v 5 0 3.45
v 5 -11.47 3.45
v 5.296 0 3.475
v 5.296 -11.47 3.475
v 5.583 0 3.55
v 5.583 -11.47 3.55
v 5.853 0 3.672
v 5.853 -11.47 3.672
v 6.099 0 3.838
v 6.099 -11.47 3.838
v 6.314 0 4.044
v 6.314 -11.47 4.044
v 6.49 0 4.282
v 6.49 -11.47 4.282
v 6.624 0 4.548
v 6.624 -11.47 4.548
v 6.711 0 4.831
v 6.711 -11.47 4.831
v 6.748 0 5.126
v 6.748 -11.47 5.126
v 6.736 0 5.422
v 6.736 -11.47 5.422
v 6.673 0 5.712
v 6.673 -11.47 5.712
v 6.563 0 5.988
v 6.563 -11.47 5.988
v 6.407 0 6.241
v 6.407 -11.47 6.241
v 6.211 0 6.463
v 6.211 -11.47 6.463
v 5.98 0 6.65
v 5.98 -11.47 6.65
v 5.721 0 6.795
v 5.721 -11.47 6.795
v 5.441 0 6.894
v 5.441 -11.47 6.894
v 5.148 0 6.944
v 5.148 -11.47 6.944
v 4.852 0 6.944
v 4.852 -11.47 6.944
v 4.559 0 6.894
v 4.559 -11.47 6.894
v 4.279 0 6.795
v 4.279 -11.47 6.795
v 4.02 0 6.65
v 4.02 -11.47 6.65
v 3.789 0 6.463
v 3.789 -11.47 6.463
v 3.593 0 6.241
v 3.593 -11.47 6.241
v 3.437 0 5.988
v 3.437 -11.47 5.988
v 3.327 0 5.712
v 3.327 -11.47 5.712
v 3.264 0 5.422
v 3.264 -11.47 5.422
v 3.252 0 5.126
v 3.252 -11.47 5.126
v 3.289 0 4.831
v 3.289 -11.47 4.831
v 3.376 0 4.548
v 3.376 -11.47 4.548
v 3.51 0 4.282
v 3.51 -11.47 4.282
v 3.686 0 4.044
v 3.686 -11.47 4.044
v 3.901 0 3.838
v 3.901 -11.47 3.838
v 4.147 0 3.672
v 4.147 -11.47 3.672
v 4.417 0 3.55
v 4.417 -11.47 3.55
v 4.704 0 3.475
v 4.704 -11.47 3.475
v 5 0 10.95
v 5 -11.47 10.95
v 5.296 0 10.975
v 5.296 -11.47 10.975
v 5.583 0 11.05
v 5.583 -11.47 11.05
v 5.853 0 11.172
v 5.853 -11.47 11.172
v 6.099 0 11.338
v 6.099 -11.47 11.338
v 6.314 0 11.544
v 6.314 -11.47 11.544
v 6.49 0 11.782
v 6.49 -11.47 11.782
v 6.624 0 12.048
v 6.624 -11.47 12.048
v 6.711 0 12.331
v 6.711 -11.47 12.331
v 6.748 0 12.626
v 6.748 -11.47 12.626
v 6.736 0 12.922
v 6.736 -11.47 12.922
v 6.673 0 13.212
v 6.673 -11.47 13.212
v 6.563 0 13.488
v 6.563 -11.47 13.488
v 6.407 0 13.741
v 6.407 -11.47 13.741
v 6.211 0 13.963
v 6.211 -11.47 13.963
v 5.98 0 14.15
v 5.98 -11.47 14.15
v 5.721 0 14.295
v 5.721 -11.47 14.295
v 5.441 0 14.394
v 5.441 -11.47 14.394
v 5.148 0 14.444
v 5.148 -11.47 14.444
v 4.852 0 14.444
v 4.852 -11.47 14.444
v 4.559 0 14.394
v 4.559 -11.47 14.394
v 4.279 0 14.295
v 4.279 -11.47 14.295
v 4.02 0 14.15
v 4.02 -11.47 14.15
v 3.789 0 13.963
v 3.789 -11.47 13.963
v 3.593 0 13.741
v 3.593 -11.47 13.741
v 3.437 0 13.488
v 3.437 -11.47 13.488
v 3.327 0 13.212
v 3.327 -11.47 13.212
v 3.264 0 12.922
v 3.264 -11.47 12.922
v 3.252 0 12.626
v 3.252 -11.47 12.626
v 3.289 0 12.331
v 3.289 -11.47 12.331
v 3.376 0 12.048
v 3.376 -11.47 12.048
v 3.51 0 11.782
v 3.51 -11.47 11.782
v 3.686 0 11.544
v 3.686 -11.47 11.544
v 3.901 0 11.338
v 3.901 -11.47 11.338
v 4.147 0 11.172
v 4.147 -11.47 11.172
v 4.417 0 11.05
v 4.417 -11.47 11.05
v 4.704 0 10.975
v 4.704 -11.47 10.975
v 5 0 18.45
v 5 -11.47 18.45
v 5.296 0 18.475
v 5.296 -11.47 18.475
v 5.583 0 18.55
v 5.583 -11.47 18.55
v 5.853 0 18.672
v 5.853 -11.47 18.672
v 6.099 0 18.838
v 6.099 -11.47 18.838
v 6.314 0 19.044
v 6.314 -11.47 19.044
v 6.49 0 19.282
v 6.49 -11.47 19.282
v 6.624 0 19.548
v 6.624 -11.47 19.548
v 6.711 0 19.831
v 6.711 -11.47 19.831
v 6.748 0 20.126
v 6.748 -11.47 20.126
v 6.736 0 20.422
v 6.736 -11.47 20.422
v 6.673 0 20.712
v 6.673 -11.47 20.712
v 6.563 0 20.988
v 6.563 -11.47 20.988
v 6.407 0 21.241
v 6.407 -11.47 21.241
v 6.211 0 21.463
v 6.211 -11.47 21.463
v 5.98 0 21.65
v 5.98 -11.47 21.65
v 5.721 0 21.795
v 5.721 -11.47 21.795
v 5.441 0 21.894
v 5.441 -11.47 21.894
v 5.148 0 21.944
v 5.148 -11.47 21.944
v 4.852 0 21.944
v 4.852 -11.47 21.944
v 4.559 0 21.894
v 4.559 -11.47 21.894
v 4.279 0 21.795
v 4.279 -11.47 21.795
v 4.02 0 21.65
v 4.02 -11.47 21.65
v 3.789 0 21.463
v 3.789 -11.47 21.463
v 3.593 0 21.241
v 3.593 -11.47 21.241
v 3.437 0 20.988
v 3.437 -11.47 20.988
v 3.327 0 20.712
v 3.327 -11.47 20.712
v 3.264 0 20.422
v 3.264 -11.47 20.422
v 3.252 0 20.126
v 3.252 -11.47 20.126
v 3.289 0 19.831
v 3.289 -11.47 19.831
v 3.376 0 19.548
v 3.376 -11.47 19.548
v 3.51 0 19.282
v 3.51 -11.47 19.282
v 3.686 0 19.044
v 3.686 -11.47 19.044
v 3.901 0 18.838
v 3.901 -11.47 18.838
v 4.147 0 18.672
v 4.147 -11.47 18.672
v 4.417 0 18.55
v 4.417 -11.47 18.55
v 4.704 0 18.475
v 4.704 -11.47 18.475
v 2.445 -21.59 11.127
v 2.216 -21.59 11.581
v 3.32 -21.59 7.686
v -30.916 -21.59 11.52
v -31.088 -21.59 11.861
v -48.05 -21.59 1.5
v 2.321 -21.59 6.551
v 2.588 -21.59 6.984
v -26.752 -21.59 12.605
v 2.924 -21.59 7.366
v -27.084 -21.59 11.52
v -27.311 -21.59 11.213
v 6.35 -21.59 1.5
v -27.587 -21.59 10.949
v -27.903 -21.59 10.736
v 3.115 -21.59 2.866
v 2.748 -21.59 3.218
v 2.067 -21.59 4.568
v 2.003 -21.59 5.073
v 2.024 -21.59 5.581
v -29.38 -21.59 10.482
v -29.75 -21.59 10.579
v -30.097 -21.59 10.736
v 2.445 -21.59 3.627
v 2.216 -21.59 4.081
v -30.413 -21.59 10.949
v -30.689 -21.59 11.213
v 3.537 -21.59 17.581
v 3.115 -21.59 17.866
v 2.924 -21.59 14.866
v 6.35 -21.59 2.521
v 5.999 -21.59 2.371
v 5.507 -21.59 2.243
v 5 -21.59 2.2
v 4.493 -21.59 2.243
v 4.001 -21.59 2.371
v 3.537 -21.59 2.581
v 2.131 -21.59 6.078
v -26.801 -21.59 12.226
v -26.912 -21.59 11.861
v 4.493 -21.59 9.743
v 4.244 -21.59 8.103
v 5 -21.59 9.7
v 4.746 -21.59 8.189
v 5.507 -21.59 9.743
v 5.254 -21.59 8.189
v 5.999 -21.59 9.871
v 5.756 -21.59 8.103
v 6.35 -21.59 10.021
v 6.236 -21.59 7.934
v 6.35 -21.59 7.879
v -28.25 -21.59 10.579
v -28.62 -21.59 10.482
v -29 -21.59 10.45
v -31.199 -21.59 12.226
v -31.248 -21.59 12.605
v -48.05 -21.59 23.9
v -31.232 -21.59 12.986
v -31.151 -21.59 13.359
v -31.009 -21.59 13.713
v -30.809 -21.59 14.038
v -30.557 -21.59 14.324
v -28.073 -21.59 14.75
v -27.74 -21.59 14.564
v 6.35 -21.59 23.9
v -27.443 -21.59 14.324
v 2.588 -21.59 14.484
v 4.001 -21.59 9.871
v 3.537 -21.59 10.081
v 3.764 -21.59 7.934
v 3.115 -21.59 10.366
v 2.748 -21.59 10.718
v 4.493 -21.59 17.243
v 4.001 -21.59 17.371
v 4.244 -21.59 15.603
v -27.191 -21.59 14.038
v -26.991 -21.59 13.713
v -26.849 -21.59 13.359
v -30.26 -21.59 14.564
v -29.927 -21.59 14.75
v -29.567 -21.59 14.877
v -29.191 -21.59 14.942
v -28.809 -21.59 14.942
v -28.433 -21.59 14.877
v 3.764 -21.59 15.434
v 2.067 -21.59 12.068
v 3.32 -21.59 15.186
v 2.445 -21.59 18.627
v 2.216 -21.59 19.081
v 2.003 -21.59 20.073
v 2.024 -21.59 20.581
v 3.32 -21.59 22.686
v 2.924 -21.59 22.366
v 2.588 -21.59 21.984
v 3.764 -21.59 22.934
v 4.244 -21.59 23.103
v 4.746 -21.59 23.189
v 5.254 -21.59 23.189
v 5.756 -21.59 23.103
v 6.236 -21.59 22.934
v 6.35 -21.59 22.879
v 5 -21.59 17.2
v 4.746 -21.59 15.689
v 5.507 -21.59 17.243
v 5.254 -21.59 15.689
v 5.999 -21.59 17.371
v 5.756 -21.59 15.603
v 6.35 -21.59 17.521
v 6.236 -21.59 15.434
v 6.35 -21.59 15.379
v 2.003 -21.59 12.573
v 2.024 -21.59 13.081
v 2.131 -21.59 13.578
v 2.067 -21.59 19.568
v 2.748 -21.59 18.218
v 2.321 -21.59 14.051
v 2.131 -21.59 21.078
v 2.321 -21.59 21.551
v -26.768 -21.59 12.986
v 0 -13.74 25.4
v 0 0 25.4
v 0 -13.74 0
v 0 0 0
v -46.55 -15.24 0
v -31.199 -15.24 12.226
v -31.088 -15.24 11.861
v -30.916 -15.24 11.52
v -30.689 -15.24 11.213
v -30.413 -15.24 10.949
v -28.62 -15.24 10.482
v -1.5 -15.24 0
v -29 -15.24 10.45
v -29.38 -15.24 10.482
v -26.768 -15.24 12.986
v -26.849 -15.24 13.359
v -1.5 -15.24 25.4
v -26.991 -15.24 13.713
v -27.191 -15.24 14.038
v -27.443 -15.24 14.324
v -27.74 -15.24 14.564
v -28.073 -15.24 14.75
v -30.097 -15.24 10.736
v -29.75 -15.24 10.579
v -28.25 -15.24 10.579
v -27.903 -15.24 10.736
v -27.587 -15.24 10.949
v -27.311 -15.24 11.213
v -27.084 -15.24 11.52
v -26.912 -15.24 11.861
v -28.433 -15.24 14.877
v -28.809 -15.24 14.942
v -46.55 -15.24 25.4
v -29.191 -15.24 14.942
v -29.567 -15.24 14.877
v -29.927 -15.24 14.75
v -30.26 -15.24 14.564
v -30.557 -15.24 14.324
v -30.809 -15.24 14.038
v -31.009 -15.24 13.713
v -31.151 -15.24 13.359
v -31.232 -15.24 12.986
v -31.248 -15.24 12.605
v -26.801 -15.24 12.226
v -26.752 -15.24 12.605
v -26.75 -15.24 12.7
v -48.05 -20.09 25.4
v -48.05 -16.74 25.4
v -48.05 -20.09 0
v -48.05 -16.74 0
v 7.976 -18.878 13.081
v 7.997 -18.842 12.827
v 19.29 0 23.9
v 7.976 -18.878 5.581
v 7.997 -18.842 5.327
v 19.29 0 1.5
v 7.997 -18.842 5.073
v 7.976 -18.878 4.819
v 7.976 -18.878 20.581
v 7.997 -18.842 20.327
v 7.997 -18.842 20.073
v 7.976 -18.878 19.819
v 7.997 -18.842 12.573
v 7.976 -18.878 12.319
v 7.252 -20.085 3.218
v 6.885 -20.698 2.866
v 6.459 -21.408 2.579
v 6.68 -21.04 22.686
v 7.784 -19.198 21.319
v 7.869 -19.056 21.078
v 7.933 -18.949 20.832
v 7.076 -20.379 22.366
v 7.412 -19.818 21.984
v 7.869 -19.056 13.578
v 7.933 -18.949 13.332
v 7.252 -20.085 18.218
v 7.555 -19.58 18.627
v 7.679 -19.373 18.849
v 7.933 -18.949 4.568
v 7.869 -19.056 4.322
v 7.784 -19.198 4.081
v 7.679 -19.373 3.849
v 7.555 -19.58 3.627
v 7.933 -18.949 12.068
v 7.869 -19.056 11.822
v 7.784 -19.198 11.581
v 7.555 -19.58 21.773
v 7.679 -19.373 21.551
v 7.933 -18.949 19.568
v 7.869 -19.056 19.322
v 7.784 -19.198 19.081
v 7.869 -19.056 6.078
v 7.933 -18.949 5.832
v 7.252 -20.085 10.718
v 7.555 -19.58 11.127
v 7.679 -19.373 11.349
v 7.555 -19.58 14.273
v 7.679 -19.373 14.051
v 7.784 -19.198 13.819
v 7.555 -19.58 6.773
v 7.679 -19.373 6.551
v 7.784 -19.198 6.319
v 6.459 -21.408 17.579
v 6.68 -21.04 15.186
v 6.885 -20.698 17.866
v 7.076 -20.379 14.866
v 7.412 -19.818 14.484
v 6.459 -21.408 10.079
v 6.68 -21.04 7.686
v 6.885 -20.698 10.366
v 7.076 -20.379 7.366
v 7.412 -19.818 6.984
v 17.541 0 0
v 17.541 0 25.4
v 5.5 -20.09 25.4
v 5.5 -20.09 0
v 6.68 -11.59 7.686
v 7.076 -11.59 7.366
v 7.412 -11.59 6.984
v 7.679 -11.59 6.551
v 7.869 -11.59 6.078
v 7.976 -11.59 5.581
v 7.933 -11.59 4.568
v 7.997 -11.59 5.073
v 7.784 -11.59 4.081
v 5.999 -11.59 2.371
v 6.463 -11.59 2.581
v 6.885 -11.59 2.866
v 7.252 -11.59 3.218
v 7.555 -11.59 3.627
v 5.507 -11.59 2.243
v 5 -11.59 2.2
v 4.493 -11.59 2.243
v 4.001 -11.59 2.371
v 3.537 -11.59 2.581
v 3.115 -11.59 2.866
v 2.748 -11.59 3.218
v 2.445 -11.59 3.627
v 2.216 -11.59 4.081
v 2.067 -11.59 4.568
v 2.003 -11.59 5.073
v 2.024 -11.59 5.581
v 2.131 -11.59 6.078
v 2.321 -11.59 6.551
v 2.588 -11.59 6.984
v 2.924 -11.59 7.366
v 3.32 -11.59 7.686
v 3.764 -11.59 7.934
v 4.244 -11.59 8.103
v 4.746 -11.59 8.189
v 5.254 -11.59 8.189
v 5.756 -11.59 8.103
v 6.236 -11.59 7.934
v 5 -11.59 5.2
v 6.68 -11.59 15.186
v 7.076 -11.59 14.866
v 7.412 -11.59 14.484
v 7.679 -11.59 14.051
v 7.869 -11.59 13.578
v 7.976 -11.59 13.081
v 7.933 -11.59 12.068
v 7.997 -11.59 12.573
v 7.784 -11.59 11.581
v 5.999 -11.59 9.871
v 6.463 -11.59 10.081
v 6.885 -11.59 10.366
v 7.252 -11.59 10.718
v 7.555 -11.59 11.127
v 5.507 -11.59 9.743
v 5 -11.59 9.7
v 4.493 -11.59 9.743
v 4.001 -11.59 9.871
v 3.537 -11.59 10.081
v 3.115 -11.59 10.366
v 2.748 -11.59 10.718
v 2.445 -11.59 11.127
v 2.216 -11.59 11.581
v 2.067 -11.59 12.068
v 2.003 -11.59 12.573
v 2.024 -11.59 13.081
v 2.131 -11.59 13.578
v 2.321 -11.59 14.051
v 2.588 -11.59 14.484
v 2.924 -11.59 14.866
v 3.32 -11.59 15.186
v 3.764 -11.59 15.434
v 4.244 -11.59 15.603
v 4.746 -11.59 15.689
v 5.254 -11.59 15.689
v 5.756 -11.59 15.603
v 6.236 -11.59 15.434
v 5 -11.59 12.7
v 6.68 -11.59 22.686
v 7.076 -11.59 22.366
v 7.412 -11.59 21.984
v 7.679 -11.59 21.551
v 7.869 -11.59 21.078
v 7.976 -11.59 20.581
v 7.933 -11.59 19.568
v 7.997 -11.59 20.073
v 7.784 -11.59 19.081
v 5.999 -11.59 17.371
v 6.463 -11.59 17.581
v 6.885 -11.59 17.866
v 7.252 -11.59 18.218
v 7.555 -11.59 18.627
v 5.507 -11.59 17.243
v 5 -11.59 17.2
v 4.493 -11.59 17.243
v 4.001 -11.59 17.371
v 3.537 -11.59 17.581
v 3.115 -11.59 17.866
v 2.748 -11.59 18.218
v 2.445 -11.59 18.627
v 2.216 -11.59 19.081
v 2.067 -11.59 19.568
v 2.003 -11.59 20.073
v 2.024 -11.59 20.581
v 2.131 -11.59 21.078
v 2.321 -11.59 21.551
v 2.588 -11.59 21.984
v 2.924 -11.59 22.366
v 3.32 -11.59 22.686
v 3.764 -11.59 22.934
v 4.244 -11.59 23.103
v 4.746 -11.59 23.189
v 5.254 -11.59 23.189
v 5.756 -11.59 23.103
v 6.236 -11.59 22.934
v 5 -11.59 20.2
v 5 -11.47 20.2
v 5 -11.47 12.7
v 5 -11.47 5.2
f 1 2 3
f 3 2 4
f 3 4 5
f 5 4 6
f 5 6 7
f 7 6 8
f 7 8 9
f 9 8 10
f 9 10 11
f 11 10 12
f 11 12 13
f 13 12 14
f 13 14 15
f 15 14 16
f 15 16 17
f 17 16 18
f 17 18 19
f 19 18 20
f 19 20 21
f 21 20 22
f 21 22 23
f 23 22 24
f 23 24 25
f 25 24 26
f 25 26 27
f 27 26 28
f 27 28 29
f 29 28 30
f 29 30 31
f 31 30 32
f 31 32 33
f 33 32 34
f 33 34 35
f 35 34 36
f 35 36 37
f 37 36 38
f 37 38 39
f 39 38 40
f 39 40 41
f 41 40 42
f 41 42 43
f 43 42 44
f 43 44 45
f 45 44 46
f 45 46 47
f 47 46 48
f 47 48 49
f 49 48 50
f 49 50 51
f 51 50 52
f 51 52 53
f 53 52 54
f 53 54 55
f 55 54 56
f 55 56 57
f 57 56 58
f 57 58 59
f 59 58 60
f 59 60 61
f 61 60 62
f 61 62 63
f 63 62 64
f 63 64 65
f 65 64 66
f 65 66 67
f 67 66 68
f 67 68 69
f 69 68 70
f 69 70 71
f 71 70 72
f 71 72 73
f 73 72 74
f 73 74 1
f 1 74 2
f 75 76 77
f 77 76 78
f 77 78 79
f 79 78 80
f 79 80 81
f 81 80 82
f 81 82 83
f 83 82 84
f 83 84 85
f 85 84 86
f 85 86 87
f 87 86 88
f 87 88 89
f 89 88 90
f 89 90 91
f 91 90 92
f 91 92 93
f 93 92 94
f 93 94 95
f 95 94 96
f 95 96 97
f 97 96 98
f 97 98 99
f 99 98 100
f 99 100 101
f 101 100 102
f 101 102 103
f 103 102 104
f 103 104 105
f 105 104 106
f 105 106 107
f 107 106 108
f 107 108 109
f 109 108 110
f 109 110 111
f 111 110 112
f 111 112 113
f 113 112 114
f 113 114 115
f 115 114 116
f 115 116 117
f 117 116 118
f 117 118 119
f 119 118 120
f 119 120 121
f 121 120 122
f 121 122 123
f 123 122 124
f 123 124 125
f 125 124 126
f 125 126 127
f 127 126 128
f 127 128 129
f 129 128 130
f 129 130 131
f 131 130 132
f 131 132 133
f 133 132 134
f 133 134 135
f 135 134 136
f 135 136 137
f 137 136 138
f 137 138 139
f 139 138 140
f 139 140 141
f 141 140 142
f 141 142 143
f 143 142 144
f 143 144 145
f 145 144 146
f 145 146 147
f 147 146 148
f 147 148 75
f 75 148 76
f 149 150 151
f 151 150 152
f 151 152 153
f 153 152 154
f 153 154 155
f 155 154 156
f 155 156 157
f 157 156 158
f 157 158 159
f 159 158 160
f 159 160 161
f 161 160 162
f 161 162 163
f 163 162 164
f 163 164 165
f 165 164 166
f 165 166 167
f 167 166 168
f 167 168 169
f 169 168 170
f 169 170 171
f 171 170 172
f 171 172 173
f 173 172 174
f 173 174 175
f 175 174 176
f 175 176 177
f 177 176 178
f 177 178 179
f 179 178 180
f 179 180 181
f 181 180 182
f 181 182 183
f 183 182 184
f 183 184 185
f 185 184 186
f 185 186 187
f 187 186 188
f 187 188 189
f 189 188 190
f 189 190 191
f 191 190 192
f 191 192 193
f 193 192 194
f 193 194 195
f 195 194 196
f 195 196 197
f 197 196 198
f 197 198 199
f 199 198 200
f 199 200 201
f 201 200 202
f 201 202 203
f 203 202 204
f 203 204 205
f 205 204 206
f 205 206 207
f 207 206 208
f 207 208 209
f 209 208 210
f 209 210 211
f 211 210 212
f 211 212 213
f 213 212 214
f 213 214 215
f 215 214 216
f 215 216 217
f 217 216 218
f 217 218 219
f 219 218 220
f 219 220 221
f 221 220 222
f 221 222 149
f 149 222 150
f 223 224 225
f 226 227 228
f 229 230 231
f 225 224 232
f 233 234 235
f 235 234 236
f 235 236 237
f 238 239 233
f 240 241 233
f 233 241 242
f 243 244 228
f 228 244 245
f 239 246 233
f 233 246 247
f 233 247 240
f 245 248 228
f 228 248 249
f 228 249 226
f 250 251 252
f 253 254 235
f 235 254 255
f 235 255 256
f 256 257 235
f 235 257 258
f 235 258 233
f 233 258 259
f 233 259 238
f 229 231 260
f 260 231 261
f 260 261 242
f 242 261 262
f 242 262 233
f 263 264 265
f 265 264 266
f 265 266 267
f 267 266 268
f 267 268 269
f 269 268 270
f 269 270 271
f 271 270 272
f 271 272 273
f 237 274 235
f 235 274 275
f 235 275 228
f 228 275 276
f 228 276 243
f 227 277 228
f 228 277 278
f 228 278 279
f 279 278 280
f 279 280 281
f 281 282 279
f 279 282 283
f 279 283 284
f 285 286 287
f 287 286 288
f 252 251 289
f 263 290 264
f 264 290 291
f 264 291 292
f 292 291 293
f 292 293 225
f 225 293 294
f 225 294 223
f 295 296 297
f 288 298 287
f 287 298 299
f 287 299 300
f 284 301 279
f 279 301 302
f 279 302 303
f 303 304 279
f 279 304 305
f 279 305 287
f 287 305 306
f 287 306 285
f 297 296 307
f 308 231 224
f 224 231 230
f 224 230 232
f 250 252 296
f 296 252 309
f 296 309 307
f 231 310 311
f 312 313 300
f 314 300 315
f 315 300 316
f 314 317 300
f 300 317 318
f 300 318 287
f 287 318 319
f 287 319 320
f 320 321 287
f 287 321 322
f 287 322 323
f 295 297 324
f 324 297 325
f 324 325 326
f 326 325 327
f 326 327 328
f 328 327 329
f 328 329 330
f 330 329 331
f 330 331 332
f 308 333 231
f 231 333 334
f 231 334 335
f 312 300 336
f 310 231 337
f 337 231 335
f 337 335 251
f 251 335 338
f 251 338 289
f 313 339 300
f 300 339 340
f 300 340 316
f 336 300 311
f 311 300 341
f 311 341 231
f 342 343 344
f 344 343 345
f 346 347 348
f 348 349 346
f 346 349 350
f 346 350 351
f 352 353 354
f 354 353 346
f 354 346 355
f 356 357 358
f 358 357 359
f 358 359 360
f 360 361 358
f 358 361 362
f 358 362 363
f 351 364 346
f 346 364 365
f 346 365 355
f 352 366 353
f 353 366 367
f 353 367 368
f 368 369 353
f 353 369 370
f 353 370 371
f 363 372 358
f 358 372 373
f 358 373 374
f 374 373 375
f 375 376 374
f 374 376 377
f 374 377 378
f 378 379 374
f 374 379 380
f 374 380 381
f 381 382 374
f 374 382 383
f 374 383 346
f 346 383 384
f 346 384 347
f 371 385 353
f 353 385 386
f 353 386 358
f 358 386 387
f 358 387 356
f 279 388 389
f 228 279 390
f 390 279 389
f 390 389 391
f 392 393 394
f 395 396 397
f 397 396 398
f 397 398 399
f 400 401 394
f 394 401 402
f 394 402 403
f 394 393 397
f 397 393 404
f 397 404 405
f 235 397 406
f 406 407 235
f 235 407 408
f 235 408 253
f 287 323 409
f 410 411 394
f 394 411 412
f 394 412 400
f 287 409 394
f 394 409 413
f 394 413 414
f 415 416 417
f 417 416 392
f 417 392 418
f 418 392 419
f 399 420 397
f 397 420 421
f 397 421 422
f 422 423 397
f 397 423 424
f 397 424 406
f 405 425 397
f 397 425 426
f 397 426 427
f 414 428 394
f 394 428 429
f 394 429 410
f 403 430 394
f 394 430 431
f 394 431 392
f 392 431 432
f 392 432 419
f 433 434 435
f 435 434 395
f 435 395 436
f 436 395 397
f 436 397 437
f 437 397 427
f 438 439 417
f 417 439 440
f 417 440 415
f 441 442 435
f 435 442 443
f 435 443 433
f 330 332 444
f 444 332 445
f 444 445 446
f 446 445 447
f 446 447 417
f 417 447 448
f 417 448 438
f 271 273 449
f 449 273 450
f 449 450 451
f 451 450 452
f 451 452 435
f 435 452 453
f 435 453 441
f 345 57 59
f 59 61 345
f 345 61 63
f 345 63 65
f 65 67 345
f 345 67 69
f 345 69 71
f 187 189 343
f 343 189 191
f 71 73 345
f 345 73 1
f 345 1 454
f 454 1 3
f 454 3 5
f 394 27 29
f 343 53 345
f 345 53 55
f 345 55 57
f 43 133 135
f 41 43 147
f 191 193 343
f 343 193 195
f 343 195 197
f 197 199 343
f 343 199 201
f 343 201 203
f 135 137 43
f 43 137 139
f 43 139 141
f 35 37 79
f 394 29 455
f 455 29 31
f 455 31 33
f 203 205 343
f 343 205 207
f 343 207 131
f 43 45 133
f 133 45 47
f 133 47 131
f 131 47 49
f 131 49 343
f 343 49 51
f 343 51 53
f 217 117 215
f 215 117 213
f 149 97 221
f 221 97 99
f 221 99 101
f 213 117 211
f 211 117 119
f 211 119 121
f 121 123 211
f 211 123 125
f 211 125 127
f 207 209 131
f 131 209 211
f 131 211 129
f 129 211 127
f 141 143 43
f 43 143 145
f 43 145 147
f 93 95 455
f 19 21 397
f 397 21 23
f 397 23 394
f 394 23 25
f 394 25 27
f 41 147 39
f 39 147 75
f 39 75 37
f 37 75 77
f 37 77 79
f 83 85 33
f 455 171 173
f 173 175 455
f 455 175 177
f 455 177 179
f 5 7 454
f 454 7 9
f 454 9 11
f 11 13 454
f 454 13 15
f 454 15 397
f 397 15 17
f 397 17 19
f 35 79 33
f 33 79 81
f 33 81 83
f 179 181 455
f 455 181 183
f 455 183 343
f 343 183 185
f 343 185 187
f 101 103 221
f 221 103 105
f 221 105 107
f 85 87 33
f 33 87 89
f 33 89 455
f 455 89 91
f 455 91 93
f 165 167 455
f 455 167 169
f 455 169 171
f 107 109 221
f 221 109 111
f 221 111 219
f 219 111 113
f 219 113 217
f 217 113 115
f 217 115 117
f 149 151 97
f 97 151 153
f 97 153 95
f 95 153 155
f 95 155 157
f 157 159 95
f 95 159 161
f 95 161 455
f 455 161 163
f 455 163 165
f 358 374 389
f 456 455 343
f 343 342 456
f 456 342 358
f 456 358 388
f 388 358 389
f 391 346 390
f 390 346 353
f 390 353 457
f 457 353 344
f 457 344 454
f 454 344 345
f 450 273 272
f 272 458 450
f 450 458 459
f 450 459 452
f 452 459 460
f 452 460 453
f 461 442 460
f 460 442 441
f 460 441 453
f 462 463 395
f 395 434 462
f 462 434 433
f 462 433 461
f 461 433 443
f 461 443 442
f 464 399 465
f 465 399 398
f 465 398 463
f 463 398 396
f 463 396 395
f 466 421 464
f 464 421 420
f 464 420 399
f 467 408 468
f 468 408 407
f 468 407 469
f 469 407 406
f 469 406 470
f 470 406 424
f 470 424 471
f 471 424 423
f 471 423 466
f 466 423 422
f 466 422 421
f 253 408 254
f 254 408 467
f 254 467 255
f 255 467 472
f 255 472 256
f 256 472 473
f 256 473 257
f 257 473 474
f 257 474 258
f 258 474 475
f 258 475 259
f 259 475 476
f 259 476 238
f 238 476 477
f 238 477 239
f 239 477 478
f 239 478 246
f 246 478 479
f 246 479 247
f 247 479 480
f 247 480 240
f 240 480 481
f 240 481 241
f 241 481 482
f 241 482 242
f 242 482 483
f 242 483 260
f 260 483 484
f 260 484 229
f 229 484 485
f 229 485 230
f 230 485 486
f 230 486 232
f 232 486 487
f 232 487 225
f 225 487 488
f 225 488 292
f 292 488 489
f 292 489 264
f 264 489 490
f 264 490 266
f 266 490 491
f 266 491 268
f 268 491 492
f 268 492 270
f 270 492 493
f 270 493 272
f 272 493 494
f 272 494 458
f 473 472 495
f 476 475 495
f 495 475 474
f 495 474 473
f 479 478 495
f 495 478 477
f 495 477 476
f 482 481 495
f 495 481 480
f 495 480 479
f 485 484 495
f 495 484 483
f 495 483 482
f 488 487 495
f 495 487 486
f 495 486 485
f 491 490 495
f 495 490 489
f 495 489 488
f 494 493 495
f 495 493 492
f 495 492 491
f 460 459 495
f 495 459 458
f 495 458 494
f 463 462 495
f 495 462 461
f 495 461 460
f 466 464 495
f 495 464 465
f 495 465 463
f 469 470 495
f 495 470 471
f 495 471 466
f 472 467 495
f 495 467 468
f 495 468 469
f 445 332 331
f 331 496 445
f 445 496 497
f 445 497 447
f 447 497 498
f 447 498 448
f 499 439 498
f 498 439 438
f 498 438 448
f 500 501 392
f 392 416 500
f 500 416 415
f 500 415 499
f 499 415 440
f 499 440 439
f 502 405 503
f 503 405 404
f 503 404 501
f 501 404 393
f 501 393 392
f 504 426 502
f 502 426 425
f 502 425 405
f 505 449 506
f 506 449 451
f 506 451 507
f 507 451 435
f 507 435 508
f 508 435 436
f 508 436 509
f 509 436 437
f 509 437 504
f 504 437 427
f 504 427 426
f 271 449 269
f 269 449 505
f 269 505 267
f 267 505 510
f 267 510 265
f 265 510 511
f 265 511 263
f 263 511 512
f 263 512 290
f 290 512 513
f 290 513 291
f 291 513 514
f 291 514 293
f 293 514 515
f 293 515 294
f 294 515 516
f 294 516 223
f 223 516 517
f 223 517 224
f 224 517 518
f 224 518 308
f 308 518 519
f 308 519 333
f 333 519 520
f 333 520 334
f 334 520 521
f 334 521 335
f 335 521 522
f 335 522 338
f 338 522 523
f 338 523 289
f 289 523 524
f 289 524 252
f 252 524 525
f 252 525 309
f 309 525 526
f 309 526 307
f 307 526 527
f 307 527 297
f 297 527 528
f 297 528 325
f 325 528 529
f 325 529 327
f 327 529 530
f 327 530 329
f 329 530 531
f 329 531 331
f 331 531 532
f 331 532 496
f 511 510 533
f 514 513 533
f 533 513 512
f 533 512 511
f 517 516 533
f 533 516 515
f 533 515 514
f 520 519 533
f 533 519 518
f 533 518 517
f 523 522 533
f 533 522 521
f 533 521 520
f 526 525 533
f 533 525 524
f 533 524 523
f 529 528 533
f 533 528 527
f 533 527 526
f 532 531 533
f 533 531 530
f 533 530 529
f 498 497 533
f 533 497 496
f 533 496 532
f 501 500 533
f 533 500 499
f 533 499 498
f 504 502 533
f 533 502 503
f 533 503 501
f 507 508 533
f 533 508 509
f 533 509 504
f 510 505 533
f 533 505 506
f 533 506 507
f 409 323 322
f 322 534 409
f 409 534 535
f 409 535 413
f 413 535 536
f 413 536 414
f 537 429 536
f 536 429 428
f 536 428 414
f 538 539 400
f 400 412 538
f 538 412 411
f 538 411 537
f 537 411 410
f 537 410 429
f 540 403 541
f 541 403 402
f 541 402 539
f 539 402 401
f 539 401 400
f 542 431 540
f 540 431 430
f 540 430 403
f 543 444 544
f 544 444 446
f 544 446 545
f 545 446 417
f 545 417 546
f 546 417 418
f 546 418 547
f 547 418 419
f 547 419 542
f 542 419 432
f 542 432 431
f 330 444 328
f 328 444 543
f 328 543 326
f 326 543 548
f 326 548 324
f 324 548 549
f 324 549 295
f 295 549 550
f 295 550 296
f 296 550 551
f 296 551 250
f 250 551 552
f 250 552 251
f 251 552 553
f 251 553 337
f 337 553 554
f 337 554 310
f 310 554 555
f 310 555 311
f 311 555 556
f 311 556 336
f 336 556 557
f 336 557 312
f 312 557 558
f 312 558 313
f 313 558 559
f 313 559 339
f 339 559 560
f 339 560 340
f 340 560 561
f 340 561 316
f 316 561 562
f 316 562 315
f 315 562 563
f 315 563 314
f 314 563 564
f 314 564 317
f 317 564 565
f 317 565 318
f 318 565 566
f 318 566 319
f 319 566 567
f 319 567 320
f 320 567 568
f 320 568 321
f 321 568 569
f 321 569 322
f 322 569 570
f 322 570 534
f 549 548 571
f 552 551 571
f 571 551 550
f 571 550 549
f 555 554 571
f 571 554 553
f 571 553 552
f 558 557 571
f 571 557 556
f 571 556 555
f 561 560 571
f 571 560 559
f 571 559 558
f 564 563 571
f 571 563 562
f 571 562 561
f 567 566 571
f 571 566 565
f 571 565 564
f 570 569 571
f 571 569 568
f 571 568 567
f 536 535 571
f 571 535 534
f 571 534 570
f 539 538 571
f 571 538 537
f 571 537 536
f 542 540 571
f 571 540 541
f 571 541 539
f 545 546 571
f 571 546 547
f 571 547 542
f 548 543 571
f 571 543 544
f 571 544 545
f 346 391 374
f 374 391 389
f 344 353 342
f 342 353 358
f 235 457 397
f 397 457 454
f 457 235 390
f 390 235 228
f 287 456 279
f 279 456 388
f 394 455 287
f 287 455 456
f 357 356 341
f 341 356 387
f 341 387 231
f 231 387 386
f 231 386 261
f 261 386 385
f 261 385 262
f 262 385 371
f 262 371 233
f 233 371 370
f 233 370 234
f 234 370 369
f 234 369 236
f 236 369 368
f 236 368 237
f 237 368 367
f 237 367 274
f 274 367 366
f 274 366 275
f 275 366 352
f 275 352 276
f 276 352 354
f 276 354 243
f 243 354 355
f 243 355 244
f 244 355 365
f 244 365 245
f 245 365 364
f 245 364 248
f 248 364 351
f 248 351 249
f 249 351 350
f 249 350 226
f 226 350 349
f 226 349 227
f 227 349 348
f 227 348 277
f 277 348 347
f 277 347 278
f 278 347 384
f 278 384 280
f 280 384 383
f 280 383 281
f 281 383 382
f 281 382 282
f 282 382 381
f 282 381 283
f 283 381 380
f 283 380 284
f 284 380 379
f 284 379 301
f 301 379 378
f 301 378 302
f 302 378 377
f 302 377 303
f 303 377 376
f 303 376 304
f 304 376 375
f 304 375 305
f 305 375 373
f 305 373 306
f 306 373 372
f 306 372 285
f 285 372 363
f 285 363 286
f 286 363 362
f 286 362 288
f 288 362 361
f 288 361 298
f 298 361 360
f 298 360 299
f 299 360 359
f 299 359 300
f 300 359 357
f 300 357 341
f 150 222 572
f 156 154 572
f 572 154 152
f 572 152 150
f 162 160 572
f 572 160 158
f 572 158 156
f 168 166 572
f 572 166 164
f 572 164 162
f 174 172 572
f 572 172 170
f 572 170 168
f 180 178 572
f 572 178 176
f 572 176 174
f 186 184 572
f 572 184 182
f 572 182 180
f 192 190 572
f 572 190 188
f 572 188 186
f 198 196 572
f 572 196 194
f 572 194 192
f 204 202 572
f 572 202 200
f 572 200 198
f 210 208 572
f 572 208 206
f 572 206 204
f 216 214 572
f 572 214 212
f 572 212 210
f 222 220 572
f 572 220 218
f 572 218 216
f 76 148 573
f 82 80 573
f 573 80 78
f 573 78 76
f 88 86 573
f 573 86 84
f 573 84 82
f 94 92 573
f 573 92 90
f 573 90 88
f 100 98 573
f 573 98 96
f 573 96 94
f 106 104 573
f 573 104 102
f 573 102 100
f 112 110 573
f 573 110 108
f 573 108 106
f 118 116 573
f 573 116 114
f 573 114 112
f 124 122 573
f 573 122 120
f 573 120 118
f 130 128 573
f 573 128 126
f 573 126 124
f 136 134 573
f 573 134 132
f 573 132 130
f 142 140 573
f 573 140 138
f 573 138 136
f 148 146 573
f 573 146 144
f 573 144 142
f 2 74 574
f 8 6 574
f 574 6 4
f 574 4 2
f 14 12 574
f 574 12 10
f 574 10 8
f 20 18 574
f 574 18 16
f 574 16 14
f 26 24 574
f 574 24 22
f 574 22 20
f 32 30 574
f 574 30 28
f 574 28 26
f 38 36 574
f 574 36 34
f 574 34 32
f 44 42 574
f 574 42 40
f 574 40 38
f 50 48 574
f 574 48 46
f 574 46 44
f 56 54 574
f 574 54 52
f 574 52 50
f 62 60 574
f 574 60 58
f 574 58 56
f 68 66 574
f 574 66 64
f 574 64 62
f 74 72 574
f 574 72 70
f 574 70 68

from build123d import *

# Parameters (mm, degrees)
BOSS_EXTRUDE1_DEPTH                     = 25.4
CBORE_FOR_M5_HEX_HEAD_BOLT1_D           = 3.5
CBORE_FOR_M5_HEX_HEAD_BOLT1_CBORE_D     = 6
CBORE_FOR_M5_HEX_HEAD_BOLT1_CBORE_DEPTH = 10
CHAMFER2_SIZE                           = 1.5
SKETCH7_R                               = 2.25
CUT_EXTRUDE1_DEPTH                      = 6.35
BOSS_EXTRUDE2_START                     = -0.12
SKETCH8_R                               = 1.75
BOSS_EXTRUDE2_DEPTH                     = 0.12


with BuildPart() as part:
    # Sketch1 → Boss-Extrude1 (new body)
    with BuildSketch(Plane.XY):
        Polygon((0, 0), (0, -15.24), (-48.05, -15.24), (-48.05, -21.59), (6.35, -21.59), (19.29, 0), (6.35, 0), align=None)
    extrude(amount=BOSS_EXTRUDE1_DEPTH)

    # CBORE for M5 Hex Head Bolt1 (through all)
    with Locations(Plane(origin=(5, -21.59, 20.2), x_dir=(-1, 0, 0), z_dir=(0, -1, 0))):
        with Locations((0, 0), (0, 7.5), (0, 15)):
            CounterBoreHole(CBORE_FOR_M5_HEX_HEAD_BOLT1_D / 2, CBORE_FOR_M5_HEX_HEAD_BOLT1_CBORE_D / 2, CBORE_FOR_M5_HEX_HEAD_BOLT1_CBORE_DEPTH)

    # Chamfer2
    chamfer2_edges = [part.edges().sort_by_distance(p)[0] for p in [
        (-48.05, -15.24, 12.7),
        (0, -15.24, 12.7),
        (-20.85, -21.59, 25.4),
        (12.82, -10.795, 25.4),
        (12.82, -10.795, 0),
        (-20.85, -21.59, 0),
    ]]
    chamfer(chamfer2_edges, length=CHAMFER2_SIZE)

    # Sketch7 → Cut-Extrude1 (cut)
    with BuildSketch(Plane.XZ.offset(21.59)):
        with Locations(Location((-29, 12.7, 0), (0, 0, 270))):
            Circle(SKETCH7_R)
    extrude(amount=-CUT_EXTRUDE1_DEPTH, mode=Mode.SUBTRACT)

    # Sketch8 → Boss-Extrude2 (add)
    with BuildSketch(Plane.XZ.offset(11.59).offset(BOSS_EXTRUDE2_START)):
        with Locations(Location((5, 20.2, 0), (0, 0, 270))):
            Circle(SKETCH8_R)
        with Locations(Location((5, 12.7, 0), (0, 0, 270))):
            Circle(SKETCH8_R)
        with Locations(Location((5, 5.2, 0), (0, 0, 270))):
            Circle(SKETCH8_R)
    extrude(amount=BOSS_EXTRUDE2_DEPTH)


solid = part.part
